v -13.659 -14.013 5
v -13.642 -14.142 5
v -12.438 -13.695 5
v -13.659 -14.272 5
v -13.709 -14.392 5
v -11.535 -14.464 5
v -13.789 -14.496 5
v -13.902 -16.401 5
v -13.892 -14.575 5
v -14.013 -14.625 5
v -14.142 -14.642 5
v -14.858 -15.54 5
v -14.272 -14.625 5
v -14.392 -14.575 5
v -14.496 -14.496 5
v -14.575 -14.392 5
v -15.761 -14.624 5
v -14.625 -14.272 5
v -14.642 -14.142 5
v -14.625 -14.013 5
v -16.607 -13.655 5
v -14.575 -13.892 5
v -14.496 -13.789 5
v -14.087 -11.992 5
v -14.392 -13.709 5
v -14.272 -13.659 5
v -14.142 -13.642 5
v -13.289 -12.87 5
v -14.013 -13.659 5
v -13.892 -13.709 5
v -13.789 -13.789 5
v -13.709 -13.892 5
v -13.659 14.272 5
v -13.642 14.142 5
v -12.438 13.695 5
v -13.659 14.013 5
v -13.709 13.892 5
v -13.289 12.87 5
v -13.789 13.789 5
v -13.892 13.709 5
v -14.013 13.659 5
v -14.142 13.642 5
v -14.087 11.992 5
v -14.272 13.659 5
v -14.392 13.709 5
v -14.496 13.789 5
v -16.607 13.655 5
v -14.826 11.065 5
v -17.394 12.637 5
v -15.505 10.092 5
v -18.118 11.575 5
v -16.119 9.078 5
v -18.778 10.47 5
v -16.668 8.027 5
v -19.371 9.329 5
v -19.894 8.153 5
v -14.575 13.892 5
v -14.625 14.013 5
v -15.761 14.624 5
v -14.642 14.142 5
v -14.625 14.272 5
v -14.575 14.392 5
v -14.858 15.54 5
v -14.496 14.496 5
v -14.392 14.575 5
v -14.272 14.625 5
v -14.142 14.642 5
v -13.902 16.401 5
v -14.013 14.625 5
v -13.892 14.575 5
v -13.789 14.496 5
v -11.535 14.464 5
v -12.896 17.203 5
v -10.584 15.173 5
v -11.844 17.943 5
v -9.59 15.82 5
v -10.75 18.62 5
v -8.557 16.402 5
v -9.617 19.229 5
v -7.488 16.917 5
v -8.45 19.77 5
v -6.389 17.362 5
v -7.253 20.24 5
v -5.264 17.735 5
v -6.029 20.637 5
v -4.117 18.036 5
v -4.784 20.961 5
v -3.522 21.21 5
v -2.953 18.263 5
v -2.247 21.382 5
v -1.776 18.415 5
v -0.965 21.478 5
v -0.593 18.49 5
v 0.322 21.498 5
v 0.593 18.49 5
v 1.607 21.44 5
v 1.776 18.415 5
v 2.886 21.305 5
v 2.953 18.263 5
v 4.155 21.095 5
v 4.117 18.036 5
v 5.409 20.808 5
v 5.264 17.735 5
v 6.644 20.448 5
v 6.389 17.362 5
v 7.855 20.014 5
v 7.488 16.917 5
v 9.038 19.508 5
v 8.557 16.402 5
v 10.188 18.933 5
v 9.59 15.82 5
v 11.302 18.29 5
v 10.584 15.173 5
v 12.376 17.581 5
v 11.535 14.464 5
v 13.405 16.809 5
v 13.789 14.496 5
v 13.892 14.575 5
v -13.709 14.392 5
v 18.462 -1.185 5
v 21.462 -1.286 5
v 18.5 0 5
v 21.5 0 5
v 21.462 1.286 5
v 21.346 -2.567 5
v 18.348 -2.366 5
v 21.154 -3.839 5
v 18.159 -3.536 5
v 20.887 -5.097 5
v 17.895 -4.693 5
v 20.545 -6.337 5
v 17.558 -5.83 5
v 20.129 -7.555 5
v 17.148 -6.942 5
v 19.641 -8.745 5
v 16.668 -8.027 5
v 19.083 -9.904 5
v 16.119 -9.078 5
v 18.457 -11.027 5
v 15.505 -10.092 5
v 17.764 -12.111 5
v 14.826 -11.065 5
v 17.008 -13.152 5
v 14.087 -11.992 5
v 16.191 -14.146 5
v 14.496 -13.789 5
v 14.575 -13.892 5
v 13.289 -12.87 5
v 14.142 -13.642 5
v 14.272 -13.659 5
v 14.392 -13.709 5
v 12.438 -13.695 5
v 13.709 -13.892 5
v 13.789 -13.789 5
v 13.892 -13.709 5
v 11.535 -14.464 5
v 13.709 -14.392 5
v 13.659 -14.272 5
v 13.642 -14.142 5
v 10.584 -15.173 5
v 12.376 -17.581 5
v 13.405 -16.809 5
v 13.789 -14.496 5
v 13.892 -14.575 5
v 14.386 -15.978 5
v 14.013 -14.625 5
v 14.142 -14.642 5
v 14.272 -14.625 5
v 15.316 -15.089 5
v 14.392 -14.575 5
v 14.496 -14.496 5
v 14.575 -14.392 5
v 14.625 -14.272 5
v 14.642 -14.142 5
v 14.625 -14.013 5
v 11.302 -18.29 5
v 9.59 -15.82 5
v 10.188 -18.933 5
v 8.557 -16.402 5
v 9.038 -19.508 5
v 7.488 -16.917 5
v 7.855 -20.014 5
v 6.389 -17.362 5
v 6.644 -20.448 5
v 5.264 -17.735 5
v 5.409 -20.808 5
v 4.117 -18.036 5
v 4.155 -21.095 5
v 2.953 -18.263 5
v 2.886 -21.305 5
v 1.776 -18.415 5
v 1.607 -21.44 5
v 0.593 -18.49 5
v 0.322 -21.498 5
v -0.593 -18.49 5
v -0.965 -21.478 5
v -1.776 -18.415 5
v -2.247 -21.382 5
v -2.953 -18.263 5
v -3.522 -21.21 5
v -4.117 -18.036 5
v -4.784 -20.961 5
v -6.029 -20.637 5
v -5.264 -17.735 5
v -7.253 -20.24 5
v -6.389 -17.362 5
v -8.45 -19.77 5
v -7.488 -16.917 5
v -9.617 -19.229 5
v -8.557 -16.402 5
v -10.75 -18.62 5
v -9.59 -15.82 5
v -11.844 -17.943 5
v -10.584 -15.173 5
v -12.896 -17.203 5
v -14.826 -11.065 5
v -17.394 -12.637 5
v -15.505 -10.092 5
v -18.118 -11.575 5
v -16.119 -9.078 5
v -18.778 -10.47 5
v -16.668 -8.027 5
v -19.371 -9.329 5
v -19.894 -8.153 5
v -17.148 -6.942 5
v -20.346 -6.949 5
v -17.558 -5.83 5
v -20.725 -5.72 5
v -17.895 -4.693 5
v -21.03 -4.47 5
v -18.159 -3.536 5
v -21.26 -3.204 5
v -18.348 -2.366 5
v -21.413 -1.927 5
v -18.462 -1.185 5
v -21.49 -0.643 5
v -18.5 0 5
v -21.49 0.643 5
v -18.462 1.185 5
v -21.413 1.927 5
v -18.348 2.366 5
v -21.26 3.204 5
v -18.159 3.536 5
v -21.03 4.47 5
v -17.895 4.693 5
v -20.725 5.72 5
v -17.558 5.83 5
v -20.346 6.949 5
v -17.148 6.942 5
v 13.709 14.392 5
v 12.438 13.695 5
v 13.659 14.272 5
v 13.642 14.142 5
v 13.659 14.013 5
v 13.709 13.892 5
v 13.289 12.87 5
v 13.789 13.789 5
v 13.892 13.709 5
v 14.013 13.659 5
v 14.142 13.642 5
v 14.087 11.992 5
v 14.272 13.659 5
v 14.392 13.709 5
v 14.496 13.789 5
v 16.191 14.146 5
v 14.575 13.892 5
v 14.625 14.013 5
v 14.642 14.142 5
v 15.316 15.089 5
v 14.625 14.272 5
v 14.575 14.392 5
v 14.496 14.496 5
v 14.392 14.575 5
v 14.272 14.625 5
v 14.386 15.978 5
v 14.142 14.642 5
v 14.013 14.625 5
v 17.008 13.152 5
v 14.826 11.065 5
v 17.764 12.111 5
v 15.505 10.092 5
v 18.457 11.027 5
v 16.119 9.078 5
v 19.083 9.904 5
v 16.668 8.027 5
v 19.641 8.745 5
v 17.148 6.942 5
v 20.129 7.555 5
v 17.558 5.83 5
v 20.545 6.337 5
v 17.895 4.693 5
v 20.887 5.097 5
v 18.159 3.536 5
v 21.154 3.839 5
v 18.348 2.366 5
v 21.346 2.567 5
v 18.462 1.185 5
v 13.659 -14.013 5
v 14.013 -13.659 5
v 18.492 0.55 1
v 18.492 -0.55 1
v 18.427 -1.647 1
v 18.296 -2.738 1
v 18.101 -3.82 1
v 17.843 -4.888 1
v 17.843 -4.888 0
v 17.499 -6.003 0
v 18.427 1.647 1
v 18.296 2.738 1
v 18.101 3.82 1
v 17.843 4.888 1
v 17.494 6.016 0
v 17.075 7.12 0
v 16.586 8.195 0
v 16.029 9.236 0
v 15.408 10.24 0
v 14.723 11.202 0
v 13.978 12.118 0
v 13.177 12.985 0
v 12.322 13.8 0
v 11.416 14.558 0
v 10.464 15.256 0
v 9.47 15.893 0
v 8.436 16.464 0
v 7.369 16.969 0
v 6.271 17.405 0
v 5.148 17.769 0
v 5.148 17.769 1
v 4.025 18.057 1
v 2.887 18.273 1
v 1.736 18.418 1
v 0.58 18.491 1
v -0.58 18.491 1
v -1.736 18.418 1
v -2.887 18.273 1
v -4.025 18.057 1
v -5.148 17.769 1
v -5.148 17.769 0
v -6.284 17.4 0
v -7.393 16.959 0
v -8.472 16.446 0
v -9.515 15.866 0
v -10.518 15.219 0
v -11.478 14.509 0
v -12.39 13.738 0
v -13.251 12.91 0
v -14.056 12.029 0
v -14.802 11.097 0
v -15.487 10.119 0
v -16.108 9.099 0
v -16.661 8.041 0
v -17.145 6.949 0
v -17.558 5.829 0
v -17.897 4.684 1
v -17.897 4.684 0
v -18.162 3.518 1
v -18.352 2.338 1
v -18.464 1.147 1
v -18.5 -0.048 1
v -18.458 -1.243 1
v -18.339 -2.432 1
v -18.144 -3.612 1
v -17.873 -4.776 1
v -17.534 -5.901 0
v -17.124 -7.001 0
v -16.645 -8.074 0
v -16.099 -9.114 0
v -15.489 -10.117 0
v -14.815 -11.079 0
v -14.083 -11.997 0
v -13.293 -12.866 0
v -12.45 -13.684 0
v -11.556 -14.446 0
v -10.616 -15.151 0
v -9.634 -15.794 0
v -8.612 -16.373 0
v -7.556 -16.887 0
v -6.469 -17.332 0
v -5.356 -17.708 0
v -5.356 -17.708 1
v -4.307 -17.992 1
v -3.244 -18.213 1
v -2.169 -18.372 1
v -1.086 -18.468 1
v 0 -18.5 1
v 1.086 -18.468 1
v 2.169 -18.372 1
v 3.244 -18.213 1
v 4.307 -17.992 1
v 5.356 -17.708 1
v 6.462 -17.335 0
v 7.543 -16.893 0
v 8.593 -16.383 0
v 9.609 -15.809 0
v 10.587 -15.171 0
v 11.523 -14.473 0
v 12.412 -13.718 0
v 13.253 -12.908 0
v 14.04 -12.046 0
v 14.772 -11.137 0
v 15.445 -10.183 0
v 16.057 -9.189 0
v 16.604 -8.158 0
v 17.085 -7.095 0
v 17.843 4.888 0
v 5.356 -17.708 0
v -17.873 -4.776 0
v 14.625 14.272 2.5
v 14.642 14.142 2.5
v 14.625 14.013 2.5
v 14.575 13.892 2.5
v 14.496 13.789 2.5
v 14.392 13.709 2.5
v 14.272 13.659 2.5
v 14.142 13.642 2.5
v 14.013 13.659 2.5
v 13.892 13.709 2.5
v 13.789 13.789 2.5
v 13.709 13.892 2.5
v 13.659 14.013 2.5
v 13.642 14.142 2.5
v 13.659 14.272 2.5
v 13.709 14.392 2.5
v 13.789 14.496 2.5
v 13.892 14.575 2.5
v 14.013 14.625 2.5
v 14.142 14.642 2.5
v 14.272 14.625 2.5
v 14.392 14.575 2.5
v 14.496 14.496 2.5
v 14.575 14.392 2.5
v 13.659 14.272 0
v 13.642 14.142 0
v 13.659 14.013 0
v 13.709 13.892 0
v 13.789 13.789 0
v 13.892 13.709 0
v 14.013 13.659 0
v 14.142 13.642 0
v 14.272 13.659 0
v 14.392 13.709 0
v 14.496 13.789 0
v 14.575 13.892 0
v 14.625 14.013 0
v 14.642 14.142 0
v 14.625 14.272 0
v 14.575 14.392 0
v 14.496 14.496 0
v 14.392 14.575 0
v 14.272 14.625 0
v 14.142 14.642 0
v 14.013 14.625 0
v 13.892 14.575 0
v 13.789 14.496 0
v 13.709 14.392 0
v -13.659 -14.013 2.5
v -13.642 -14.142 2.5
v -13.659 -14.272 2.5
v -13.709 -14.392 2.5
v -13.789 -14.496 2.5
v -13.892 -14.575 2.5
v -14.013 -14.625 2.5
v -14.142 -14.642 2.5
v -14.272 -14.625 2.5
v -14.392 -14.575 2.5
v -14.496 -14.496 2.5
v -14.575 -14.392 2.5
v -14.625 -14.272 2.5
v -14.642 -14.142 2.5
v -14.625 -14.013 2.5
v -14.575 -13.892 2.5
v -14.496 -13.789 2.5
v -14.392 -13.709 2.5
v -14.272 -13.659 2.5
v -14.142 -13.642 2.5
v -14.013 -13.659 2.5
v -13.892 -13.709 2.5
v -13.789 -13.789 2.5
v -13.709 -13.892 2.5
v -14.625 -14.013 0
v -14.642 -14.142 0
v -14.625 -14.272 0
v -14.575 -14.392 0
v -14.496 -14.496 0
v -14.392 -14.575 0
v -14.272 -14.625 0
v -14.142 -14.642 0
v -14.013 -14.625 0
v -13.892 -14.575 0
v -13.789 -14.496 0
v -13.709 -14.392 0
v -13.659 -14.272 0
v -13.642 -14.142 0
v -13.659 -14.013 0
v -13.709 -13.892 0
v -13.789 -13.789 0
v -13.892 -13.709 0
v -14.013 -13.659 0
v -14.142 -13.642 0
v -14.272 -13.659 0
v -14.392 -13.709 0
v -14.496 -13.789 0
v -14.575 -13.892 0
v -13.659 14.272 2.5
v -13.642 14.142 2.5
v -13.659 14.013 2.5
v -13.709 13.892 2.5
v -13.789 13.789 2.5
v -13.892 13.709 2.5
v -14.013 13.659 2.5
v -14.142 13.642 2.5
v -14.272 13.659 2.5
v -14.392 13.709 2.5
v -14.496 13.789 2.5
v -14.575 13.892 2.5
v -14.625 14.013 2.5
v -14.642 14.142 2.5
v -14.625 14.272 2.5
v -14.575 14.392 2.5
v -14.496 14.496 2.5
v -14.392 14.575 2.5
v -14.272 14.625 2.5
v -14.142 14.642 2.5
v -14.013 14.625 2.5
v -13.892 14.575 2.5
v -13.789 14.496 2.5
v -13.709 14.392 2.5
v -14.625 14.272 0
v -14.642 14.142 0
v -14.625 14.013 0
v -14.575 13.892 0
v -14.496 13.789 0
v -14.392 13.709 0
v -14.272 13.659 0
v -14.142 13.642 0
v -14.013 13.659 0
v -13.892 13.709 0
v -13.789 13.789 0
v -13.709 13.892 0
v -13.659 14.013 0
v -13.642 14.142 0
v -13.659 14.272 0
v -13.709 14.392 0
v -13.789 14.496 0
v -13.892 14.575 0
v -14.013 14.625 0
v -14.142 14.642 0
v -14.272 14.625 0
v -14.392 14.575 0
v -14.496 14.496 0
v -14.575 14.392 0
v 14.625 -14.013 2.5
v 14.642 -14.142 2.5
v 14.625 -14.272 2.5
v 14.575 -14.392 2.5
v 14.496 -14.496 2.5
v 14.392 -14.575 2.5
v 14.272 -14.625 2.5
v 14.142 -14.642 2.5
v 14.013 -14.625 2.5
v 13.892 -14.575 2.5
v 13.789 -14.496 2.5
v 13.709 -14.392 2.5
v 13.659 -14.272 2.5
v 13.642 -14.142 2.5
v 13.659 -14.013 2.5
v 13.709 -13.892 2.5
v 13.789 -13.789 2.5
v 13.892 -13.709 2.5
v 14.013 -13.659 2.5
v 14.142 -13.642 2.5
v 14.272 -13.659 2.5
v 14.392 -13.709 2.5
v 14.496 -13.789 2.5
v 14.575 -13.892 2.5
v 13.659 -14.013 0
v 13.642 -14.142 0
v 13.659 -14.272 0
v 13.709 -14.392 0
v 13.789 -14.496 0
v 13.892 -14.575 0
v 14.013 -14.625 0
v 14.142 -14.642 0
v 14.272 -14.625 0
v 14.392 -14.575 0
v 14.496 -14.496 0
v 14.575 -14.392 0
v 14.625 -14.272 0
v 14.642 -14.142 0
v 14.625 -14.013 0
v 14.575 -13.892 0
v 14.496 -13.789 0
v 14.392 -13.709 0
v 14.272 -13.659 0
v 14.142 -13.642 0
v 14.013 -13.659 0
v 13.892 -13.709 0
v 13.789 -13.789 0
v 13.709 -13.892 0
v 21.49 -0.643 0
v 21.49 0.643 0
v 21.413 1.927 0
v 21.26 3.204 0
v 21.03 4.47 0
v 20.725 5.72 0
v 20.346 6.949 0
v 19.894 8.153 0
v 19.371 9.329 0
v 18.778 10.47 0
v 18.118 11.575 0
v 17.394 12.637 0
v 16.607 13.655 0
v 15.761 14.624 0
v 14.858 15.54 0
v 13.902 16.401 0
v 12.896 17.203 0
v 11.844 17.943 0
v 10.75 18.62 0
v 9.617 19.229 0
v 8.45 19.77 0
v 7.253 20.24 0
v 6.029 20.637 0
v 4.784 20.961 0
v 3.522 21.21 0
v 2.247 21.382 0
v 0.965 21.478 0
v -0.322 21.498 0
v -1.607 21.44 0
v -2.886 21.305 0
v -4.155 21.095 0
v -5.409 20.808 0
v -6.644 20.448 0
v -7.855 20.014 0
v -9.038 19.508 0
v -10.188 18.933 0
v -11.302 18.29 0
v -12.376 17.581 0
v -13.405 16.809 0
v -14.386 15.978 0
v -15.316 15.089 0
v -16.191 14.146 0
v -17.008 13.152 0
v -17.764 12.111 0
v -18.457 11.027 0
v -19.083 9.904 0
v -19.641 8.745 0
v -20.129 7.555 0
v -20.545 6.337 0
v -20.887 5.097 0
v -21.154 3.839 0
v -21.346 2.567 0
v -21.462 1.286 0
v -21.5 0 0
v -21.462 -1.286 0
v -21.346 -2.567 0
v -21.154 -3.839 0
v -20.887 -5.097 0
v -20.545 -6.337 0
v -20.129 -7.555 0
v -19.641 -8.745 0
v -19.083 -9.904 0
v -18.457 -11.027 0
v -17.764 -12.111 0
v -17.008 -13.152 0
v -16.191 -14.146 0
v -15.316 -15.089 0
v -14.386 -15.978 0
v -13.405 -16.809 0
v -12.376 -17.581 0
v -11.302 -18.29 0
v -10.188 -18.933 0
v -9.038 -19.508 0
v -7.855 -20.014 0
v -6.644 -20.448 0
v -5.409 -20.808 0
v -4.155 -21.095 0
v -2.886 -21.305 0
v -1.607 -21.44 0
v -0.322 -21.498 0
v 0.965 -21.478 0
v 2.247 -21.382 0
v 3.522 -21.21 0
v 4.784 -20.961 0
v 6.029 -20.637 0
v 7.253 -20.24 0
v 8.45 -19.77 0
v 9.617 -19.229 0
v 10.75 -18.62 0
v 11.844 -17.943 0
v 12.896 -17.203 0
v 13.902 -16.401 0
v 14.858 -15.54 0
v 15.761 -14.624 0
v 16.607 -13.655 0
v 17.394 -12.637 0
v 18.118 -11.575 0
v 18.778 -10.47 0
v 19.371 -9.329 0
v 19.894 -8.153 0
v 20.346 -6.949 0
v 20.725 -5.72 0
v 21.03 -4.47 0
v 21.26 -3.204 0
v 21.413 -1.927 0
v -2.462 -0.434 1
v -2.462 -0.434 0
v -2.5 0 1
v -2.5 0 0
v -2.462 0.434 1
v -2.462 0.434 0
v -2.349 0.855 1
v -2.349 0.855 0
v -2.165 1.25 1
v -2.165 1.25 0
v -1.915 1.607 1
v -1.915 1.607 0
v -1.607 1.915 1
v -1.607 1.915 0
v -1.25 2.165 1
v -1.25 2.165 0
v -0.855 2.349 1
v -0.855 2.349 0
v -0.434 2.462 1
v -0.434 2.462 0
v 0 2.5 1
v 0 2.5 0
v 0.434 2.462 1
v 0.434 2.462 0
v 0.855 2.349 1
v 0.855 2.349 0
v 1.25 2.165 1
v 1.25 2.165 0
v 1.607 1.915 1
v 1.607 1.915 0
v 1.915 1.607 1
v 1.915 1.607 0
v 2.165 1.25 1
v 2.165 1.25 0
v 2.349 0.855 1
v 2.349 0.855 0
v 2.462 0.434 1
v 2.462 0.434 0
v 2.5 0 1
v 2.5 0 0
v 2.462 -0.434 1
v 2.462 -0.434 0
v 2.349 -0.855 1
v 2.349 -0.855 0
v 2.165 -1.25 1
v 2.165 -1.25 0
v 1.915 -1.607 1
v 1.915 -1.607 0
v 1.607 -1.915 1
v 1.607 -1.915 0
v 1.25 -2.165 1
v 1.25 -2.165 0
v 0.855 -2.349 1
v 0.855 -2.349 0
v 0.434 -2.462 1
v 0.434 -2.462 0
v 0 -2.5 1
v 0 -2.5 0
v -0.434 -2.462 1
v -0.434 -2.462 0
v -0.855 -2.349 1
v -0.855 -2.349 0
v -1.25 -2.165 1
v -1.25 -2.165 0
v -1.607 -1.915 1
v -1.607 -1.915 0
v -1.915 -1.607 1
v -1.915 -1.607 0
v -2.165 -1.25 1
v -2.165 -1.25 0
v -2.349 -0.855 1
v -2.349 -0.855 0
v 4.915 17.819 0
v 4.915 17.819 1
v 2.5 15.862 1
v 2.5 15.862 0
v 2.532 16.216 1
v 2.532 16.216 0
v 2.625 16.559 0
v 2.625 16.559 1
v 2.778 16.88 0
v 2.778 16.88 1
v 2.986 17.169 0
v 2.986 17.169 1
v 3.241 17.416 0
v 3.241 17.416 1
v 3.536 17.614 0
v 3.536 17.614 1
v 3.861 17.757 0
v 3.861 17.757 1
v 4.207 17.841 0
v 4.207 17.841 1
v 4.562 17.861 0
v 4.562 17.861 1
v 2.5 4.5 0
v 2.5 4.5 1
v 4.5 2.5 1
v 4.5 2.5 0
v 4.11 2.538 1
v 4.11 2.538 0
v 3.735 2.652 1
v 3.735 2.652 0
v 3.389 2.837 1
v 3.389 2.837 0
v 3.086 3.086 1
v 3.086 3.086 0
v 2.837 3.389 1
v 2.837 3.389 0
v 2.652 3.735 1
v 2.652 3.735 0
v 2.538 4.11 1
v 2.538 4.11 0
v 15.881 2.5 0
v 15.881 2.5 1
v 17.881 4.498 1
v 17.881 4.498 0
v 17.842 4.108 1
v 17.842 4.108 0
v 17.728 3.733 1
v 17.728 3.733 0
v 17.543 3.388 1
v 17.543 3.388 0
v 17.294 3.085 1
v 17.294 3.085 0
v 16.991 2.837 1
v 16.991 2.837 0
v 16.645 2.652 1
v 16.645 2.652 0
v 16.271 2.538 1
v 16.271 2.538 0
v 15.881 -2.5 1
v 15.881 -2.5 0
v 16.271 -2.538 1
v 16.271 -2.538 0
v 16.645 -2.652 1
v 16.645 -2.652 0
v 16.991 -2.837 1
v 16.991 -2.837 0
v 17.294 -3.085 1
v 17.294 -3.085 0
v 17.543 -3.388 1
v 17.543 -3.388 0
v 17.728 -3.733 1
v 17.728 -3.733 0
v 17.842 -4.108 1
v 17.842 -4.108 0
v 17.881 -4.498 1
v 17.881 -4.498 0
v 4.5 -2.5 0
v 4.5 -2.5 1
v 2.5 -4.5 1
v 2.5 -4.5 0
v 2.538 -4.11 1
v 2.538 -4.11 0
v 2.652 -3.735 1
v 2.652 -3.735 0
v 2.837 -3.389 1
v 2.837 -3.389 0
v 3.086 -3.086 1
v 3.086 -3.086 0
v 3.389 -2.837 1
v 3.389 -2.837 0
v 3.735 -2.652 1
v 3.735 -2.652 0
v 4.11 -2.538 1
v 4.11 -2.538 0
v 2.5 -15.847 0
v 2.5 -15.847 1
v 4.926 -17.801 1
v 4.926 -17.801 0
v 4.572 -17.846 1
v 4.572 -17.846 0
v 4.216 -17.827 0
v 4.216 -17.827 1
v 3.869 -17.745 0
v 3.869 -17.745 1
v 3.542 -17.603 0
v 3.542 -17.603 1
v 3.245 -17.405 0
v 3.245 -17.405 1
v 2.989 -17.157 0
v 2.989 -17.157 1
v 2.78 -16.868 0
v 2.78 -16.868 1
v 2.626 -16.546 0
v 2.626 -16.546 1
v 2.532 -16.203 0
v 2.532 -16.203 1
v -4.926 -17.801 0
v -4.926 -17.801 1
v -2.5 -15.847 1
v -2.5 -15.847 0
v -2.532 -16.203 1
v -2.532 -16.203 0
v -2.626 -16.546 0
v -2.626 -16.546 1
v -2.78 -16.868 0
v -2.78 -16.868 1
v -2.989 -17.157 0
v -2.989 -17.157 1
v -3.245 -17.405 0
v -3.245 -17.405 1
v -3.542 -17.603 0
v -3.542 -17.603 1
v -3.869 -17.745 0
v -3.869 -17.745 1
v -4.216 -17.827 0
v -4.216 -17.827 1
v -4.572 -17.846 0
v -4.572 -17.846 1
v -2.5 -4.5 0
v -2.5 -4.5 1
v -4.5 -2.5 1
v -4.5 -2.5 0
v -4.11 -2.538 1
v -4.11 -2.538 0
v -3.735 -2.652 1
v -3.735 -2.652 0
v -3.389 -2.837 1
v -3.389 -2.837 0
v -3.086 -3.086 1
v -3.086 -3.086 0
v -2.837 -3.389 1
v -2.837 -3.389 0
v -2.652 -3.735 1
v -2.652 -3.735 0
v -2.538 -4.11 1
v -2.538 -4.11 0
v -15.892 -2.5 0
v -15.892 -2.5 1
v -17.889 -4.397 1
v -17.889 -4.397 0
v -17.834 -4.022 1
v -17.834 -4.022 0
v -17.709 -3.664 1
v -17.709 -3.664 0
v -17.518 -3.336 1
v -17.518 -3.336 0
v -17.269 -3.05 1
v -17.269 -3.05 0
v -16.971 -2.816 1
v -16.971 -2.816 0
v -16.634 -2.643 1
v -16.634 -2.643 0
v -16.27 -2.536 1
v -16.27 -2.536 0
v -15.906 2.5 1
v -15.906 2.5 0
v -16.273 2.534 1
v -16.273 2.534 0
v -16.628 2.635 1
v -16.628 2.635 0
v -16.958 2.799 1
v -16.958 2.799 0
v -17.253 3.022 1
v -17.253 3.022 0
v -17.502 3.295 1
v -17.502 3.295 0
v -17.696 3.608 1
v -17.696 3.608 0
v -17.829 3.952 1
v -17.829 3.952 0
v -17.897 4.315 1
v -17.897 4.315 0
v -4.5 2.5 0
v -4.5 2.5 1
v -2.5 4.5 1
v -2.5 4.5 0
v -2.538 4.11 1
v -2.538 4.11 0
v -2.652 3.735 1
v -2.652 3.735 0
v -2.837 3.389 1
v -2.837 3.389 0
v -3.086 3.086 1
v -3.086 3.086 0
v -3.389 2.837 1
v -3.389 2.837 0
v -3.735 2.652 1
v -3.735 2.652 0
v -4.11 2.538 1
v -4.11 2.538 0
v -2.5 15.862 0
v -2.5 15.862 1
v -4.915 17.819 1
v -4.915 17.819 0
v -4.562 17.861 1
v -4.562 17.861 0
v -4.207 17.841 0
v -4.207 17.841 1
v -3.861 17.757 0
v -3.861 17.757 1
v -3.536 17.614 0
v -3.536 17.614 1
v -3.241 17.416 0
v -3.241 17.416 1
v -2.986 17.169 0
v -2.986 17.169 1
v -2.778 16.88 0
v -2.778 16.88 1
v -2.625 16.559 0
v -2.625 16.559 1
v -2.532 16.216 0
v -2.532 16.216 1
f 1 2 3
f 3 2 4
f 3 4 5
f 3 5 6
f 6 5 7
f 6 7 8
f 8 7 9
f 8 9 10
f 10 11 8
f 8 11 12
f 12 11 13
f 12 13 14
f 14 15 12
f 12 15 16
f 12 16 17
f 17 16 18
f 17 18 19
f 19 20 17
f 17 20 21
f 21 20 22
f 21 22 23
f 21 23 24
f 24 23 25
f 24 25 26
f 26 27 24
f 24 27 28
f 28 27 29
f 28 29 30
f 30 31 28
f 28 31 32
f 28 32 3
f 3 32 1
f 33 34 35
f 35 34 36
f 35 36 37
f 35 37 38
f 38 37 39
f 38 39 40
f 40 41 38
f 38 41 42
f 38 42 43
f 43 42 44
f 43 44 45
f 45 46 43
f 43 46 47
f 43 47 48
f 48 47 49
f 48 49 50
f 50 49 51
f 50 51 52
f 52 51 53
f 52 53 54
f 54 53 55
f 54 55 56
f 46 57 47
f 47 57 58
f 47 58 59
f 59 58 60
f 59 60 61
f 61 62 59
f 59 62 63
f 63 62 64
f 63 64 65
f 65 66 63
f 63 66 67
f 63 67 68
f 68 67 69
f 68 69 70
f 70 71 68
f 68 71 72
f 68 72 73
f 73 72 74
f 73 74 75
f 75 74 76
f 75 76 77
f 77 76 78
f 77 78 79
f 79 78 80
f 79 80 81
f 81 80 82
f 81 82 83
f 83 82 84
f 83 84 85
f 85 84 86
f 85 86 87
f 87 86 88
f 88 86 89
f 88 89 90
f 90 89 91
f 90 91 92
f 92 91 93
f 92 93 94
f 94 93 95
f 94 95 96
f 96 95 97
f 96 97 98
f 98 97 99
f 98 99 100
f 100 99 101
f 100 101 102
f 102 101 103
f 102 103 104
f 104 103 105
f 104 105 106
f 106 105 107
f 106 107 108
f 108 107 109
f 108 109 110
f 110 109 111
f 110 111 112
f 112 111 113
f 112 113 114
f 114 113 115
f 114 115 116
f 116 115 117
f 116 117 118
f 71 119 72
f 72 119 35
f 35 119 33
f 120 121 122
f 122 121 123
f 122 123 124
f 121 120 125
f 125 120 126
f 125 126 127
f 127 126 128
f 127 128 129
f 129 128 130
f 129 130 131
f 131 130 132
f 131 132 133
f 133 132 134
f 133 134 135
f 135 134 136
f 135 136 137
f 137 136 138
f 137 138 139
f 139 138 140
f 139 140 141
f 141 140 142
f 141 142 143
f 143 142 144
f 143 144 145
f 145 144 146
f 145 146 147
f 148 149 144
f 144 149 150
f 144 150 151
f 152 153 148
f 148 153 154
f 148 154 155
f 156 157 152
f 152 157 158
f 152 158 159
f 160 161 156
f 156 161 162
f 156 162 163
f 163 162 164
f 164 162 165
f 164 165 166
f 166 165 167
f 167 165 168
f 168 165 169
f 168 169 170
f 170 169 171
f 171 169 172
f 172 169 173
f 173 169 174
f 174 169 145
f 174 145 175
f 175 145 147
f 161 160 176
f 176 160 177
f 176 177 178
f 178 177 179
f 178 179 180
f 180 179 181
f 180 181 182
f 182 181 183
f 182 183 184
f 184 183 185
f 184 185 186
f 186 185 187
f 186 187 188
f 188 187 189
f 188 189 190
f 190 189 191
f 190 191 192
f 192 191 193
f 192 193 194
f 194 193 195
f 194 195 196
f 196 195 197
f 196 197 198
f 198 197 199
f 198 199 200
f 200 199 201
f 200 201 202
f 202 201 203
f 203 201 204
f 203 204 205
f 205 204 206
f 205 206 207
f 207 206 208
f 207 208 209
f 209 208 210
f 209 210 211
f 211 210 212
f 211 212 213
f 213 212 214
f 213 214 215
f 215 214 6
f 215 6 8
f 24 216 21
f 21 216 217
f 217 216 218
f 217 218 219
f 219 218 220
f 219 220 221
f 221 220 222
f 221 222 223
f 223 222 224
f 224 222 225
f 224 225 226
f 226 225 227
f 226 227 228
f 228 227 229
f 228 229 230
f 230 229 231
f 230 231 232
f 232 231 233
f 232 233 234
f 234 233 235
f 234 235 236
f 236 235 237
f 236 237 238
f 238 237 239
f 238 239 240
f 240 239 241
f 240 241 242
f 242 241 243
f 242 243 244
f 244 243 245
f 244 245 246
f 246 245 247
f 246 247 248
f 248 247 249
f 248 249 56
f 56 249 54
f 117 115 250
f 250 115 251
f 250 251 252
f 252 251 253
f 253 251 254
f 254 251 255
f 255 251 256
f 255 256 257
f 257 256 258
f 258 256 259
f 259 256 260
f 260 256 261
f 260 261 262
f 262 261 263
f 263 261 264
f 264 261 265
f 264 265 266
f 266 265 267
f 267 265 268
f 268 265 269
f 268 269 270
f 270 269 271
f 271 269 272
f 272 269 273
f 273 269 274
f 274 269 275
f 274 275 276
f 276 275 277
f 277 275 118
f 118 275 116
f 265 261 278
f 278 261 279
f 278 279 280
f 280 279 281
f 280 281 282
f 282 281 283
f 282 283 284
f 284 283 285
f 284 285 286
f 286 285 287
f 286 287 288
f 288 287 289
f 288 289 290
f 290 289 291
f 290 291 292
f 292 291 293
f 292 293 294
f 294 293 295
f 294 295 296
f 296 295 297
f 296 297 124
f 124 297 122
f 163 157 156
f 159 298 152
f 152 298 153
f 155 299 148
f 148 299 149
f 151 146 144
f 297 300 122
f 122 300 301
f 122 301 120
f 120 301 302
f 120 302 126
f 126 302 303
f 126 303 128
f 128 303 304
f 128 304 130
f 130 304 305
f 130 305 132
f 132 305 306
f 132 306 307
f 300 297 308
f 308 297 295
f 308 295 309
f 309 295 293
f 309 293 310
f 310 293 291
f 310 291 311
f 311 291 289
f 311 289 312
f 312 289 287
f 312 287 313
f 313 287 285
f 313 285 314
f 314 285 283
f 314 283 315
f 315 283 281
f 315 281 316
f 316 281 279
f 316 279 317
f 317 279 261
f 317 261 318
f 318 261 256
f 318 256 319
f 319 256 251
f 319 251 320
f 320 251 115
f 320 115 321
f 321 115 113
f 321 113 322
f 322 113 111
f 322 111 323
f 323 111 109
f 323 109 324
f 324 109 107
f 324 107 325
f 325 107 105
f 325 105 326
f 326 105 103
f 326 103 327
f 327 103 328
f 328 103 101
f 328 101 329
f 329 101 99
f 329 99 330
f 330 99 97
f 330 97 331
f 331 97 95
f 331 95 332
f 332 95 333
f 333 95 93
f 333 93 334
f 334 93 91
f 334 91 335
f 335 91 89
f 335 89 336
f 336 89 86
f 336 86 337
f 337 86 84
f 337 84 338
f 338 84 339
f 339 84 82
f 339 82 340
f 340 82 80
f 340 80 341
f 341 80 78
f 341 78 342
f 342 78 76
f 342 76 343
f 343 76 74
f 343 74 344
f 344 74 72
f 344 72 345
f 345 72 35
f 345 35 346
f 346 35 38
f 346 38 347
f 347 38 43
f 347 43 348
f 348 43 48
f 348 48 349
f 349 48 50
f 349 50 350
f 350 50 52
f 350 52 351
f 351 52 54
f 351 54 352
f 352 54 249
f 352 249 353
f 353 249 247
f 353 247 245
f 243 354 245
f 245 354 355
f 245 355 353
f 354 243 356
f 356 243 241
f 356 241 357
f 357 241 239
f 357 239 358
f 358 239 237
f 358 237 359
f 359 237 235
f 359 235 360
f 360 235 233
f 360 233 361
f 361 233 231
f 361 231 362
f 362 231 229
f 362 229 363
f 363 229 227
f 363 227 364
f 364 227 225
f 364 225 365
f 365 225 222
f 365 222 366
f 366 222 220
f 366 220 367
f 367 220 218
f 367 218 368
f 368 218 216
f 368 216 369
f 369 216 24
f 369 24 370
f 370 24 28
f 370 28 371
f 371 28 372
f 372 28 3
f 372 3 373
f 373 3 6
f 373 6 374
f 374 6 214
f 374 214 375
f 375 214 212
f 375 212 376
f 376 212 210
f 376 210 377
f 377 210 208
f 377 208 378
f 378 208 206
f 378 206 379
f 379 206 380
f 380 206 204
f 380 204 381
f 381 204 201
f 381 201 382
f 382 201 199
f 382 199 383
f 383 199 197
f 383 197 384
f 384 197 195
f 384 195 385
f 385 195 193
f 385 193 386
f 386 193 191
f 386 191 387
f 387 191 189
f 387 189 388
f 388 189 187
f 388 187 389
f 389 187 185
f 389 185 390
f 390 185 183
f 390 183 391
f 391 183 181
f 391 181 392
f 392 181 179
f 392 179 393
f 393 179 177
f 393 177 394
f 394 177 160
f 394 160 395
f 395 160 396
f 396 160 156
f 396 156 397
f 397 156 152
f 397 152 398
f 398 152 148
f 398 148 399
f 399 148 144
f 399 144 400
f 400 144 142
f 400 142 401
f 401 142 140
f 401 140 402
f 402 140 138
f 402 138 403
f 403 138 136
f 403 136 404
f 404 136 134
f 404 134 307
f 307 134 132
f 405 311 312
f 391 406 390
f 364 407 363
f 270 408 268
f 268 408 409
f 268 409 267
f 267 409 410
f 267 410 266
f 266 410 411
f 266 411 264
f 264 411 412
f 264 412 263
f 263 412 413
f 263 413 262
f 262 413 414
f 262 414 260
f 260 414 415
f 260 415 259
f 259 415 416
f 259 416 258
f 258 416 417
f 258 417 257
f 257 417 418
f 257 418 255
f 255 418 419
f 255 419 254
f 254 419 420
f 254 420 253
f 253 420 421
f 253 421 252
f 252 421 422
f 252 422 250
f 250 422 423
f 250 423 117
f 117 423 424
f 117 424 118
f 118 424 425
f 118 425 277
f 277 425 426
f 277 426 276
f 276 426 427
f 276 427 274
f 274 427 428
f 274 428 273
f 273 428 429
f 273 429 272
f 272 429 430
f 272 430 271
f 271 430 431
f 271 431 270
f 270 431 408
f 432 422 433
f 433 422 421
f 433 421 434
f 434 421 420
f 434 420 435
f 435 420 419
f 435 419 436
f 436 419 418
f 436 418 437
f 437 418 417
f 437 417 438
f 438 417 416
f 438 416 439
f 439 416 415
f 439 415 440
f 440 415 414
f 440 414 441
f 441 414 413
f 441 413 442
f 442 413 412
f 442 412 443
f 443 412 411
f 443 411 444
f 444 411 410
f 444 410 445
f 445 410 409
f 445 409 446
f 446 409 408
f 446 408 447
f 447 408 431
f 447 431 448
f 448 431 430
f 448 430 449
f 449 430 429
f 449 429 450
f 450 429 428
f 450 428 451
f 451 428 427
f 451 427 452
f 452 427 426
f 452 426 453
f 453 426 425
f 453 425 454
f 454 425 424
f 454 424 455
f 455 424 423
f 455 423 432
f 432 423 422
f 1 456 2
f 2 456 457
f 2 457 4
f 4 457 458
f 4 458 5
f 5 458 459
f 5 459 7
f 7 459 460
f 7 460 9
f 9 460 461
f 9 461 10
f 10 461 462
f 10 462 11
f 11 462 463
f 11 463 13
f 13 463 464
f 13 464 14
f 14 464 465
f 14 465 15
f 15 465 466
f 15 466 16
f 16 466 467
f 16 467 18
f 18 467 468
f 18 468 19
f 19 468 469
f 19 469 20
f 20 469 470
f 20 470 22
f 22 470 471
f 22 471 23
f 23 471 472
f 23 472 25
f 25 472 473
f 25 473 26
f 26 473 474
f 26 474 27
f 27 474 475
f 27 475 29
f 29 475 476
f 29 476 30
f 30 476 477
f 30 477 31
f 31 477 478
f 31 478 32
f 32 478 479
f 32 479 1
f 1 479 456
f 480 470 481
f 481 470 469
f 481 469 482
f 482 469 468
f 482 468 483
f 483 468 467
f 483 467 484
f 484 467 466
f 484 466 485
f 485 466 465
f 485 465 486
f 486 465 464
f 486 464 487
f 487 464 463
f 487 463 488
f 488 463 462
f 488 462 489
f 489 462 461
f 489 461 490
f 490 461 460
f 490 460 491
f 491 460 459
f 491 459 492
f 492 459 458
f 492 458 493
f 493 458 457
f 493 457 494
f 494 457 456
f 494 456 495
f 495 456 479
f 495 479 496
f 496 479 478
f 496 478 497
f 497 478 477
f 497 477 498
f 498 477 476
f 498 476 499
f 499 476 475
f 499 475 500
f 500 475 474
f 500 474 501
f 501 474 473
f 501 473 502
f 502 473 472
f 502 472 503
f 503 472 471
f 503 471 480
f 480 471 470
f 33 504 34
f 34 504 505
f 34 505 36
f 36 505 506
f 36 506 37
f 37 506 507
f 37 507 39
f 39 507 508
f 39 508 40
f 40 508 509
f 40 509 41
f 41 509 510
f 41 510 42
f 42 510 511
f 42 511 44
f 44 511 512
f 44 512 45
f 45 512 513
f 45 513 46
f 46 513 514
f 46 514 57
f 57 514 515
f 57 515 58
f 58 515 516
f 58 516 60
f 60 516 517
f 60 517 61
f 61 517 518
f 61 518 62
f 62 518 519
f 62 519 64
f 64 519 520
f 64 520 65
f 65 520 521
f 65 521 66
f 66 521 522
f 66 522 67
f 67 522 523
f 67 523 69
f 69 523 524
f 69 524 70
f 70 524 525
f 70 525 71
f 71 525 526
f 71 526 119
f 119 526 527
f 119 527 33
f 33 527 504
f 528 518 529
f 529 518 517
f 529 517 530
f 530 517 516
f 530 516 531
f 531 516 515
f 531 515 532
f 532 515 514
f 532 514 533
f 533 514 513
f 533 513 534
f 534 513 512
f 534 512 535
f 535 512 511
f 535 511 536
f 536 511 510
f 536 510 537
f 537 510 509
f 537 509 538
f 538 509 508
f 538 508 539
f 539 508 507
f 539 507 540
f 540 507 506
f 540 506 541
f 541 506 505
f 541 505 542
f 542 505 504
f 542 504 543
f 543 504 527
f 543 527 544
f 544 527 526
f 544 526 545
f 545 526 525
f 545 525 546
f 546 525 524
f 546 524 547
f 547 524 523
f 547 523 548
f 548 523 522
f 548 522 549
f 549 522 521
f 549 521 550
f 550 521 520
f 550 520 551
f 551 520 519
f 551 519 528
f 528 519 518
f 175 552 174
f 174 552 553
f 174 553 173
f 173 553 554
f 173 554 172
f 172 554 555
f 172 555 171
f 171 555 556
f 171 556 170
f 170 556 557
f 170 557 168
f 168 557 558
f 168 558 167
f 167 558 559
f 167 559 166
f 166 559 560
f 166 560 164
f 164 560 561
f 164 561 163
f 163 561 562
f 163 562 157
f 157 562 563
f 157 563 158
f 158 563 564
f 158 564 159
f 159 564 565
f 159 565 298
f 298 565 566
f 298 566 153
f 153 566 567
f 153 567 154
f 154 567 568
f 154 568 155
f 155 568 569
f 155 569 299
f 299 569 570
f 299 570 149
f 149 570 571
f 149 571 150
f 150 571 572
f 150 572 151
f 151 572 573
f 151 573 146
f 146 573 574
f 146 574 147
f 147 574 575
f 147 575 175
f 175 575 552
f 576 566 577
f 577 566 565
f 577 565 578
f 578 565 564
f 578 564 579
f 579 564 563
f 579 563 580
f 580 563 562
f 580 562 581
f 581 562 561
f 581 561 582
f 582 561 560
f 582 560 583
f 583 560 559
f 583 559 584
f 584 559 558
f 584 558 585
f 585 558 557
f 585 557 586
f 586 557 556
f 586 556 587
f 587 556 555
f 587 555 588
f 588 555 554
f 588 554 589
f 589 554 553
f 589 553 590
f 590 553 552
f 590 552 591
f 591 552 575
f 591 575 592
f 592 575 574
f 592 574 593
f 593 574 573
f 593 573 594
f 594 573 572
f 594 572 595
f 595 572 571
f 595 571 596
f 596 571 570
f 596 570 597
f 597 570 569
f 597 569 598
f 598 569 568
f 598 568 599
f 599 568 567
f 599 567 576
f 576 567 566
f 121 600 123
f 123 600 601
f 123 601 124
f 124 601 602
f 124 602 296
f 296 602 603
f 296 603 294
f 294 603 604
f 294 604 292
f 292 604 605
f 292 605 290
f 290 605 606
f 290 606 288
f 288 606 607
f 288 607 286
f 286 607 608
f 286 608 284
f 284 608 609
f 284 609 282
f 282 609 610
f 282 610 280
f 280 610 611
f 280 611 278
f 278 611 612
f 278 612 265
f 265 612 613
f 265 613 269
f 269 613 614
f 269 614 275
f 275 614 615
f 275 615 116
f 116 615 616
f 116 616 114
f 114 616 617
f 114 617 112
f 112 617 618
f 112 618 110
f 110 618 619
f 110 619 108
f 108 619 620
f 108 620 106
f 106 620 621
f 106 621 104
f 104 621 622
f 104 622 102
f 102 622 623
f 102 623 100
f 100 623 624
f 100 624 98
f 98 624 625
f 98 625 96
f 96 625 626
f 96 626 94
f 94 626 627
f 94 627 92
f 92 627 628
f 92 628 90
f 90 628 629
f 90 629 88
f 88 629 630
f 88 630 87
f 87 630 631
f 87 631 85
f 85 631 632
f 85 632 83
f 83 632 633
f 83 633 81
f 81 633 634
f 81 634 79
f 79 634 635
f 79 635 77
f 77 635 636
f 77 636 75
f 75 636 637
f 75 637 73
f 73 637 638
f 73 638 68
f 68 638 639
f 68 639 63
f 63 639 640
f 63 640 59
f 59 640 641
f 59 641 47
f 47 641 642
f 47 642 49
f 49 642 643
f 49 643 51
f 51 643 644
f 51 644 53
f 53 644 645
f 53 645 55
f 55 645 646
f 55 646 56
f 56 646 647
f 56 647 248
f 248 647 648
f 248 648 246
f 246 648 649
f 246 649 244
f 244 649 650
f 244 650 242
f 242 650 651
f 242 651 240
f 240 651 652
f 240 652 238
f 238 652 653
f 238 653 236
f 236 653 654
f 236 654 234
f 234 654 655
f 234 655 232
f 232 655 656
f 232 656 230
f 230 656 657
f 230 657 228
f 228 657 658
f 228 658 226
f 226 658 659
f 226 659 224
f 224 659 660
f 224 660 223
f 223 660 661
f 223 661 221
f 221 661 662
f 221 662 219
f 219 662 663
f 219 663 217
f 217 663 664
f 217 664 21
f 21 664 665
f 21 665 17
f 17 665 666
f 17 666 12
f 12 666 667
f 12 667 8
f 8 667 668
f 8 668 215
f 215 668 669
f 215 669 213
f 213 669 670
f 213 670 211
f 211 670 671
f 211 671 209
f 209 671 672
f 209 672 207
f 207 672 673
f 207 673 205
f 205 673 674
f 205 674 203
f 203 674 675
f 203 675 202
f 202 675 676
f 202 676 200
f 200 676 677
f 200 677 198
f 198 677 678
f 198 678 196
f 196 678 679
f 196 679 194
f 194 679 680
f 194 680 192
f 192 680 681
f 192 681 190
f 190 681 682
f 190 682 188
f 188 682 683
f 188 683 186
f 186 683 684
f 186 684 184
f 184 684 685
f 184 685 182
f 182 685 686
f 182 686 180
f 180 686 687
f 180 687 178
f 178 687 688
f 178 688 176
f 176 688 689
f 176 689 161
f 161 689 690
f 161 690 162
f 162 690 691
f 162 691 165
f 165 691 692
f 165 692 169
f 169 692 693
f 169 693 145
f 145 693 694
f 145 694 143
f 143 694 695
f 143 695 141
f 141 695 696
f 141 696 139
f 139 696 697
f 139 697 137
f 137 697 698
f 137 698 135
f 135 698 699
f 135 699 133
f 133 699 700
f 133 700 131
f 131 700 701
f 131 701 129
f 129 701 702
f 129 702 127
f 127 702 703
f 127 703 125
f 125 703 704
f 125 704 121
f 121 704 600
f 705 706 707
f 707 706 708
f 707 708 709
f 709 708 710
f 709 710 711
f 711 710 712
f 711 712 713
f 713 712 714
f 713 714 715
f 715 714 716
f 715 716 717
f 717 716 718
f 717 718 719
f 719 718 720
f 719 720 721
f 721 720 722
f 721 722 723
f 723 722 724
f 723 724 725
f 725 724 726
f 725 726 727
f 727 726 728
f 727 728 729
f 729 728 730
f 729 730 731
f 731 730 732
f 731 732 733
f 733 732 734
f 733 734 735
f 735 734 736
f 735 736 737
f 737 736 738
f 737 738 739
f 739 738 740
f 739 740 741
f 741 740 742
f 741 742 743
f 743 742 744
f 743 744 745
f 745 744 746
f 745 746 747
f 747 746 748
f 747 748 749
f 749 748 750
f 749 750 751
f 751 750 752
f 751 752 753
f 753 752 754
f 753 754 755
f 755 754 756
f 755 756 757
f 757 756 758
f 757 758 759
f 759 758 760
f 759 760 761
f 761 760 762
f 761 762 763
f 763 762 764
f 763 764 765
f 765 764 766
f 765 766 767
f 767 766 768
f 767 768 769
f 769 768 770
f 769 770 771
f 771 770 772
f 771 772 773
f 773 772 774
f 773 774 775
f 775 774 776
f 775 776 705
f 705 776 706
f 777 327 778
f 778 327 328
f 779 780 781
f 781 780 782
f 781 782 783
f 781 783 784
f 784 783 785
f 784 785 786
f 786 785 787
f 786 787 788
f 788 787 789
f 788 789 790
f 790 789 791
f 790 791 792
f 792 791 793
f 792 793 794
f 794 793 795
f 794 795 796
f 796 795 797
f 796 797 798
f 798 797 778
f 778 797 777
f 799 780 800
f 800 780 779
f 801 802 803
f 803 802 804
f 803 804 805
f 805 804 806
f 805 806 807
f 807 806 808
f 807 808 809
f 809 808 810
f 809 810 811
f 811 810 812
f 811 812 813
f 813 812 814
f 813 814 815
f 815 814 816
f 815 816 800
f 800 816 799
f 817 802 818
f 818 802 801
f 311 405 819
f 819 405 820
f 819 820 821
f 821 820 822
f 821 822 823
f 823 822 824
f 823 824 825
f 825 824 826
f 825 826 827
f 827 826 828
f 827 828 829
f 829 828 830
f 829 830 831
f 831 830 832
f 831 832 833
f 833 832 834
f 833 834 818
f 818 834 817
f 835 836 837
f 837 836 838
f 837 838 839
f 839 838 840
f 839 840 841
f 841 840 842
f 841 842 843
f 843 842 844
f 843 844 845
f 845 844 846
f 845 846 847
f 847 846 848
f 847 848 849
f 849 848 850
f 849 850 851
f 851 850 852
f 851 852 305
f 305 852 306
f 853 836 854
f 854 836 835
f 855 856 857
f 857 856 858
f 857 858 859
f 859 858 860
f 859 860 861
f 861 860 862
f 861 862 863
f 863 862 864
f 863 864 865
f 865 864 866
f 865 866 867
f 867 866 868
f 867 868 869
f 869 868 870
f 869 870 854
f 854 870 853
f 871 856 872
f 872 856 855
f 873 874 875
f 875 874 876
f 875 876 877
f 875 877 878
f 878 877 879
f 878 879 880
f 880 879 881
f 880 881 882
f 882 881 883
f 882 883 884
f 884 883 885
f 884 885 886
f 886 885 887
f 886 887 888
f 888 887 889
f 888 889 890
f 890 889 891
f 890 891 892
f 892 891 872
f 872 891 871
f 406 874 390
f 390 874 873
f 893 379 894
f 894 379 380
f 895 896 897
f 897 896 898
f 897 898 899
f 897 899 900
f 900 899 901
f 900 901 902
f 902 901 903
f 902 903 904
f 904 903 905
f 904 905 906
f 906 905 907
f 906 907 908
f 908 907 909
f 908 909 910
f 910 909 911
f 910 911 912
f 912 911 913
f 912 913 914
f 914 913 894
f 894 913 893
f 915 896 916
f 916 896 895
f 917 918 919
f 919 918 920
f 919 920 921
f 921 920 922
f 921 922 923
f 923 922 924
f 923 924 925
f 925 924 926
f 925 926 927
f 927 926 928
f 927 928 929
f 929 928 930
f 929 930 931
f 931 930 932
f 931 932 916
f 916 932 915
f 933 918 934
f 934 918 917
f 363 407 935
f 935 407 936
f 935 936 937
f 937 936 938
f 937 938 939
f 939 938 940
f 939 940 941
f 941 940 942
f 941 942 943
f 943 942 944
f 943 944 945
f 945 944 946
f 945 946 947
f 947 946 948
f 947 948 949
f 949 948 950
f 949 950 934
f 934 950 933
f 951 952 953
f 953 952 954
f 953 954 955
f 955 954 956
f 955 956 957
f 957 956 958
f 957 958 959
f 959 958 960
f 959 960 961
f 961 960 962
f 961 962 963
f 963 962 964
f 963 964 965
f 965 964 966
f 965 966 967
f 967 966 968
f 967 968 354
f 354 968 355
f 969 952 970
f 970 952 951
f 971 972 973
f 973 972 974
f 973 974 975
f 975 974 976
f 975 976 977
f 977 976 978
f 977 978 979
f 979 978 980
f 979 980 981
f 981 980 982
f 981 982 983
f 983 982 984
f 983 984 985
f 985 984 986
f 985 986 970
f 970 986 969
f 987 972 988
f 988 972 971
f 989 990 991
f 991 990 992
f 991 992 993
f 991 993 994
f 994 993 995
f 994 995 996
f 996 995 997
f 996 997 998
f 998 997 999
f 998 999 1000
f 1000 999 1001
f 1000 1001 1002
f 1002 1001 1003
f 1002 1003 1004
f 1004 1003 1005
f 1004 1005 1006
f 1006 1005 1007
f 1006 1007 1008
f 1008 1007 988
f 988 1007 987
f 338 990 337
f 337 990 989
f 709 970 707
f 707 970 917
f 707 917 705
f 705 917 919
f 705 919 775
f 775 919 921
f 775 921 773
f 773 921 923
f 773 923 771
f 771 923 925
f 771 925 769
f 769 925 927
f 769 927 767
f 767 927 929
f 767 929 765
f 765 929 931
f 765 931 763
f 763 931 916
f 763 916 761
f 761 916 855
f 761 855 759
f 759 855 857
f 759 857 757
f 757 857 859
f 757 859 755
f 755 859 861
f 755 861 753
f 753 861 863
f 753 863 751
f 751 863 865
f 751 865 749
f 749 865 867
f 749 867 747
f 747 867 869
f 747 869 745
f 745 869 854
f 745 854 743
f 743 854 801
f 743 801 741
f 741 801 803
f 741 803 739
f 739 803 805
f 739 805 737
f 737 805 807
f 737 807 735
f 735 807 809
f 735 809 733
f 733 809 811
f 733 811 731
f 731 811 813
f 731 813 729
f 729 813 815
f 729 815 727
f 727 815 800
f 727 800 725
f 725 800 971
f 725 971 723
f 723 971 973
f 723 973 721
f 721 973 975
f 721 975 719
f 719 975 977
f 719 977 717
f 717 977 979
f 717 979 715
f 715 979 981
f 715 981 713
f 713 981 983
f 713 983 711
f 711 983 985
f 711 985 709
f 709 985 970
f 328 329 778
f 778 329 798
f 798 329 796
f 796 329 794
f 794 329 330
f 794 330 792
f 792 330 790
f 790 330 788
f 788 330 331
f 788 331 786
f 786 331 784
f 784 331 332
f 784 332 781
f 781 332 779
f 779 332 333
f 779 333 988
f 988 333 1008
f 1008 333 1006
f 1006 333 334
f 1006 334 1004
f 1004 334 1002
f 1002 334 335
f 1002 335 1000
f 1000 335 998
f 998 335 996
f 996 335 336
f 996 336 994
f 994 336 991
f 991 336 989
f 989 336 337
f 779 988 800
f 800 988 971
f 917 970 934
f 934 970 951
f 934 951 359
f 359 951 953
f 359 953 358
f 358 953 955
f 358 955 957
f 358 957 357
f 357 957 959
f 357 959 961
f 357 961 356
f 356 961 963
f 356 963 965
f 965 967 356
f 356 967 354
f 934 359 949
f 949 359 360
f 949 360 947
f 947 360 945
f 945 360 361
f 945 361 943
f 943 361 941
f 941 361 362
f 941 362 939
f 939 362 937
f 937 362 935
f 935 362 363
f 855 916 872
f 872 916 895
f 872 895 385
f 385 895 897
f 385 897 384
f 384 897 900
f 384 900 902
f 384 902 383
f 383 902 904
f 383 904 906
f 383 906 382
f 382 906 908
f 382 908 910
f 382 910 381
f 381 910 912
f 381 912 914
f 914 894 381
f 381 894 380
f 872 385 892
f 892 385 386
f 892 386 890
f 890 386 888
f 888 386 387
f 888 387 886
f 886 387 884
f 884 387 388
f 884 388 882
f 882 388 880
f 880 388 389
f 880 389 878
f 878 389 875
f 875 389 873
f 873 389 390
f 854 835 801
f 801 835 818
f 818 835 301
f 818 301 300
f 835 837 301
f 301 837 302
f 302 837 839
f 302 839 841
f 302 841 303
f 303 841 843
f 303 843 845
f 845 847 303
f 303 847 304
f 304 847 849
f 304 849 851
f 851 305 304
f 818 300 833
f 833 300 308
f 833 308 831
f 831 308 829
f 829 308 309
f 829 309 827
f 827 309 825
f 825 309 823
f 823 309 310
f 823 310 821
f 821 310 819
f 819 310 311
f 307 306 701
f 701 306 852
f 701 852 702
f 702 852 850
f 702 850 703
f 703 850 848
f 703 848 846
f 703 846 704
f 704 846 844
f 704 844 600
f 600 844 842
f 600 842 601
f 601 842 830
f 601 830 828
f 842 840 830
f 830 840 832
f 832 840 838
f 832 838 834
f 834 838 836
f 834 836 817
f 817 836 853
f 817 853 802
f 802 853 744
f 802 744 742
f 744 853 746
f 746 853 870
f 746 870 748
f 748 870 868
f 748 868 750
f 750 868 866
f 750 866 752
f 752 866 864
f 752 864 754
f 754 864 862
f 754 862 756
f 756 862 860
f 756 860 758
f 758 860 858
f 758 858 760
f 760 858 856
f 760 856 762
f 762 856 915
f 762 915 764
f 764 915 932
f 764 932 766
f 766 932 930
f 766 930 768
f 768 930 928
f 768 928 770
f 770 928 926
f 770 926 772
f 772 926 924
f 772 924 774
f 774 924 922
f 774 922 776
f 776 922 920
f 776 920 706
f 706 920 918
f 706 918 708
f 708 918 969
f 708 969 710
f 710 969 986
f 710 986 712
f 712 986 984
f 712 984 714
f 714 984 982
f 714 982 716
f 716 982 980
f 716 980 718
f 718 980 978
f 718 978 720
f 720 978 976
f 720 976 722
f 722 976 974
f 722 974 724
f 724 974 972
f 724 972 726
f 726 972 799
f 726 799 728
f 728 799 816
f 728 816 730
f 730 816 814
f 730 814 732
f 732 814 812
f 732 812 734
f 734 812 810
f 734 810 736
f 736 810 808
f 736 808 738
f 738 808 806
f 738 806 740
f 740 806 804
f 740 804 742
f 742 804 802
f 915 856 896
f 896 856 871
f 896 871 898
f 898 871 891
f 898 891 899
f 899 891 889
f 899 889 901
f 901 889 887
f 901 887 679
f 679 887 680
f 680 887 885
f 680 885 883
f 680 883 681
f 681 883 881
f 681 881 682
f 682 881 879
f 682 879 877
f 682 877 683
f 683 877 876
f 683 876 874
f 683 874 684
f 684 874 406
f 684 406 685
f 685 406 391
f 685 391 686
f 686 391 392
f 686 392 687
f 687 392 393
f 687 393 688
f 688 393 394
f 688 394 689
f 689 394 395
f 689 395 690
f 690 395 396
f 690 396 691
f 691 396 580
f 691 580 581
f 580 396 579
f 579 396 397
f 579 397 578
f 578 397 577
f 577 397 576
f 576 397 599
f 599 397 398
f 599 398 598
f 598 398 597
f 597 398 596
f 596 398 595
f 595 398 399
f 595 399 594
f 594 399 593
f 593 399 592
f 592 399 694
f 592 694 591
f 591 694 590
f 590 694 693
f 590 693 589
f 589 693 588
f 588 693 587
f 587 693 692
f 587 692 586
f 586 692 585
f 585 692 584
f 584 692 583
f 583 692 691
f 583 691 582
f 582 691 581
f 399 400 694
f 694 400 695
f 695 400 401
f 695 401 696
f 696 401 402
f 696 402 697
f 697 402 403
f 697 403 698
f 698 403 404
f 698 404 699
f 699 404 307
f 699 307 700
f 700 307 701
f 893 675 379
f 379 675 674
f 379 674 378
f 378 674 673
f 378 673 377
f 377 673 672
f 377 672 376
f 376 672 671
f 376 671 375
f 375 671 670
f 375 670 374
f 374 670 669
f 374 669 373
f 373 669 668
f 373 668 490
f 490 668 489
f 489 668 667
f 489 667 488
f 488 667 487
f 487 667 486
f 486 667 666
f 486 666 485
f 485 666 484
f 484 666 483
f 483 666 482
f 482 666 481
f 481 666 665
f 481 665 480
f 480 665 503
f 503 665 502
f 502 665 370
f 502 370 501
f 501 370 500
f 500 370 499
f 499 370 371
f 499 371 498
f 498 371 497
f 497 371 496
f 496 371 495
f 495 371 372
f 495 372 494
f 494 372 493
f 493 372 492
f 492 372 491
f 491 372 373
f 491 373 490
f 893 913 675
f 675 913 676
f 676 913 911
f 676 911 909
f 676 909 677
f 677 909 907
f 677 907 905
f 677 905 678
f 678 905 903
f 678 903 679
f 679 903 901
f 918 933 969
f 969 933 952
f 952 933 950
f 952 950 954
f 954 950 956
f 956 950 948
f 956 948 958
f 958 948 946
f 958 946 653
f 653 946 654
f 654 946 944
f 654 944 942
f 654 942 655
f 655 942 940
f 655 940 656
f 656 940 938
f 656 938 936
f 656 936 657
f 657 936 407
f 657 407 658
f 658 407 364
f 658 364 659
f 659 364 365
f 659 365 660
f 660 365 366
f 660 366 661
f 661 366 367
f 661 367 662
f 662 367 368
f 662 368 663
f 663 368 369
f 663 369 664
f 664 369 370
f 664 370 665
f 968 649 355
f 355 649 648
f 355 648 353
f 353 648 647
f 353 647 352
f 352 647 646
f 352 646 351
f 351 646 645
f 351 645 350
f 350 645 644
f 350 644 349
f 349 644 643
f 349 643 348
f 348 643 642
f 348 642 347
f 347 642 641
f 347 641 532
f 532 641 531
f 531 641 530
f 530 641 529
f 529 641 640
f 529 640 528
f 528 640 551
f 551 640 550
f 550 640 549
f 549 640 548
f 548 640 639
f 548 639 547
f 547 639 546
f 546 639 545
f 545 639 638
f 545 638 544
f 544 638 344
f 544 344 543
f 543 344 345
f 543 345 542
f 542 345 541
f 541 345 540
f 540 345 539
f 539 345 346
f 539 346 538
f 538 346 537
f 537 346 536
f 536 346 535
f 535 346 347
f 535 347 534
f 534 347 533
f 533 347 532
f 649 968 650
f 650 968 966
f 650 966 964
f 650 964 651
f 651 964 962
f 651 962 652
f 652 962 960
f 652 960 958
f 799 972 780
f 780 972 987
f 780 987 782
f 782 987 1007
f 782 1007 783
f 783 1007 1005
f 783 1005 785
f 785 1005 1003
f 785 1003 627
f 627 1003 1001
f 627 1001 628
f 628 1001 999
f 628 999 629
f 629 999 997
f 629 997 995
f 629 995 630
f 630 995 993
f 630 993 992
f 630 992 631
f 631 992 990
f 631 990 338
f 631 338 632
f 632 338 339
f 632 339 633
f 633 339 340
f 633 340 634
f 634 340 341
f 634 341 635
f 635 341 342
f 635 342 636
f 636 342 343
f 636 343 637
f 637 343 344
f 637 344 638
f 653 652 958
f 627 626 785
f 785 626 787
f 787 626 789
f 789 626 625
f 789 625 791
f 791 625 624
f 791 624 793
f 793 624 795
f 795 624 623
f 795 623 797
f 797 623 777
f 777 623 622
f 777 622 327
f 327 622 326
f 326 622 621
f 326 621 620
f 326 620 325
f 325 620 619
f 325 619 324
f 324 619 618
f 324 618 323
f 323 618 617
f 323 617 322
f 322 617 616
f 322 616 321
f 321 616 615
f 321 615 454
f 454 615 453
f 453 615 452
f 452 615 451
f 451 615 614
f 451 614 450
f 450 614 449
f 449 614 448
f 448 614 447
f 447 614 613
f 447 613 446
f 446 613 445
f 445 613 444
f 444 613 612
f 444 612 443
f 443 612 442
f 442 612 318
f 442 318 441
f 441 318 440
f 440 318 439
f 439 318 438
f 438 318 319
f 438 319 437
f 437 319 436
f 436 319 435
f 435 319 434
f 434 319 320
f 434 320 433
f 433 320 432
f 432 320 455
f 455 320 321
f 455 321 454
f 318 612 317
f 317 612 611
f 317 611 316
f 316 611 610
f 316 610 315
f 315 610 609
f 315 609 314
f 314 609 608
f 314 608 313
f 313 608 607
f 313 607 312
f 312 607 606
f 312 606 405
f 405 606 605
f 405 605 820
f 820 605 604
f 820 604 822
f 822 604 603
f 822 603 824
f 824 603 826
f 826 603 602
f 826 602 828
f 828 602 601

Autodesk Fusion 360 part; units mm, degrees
sketch "Sketch1" plane through (0, 0, 0) normal (0, 0, 1) x (1, 0, 0)
  circle A0 centre (0, 0) radius 21.5
  circle A1 centre (0, 0) radius 18.5
  circle A2 centre (0, 0) radius 2.5
  line L0 (-2.5, 4.5) -> (-2.5, 15.8622)
  line L1 (2.5, 15.8622) -> (2.5, 4.5)
  line L2 (4.5, -2.5) -> (15.8806, -2.5)
  line L3 (15.8806, 2.5) -> (4.5, 2.5)
  line L4 (-2.5, -4.5) -> (-2.5, -15.8473)
  line L5 (2.5, -15.8473) -> (2.5, -4.5)
  line L6 (-4.5, -2.5) -> (-15.892, -2.5)
  line L7 (-15.9057, 2.5) -> (-4.5, 2.5)
  arc A3 (2.5, 4.5) -> (4.5, 2.5) centre (4.5, 4.5) ccw
  arc A4 (4.5, -2.5) -> (2.5, -4.5) centre (4.5, -4.5) ccw
  arc A5 (-2.5, -4.5) -> (-4.5, -2.5) centre (-4.5, -4.5) ccw
  arc A6 (-4.5, 2.5) -> (-2.5, 4.5) centre (-4.5, 4.5) ccw
  line L8 (-17.8692, 4.8804) -> (-17.9378, 4.526)
  line L9 (-17.8533, -4.8912) -> (-17.8867, -4.7239)
  arc A7 (-17.8692, 4.8804) -> (-15.9057, 2.5) centre (-15.9057, 4.5) ccw
  arc A8 (-15.892, -2.5) -> (-17.8533, -4.8912) centre (-15.892, -4.5) ccw
  line L10 (-4.926, -17.8014) -> (-5.3564, -17.7076)
  line L11 (4.926, -17.8014) -> (5.3564, -17.7076)
  arc A9 (-4.926, -17.8014) -> (-2.5, -15.8473) centre (-4.5, -15.8473) ccw
  arc A10 (2.5, -15.8473) -> (4.926, -17.8014) centre (4.5, -15.8473) ccw
  line L12 (17.8401, -4.9002) -> (17.8428, -4.8872)
  line L13 (17.8401, 4.9002) -> (17.8428, 4.8872)
  arc A11 (15.8806, 2.5) -> (17.8401, 4.9002) centre (15.8806, 4.5) ccw
  arc A12 (17.8401, -4.9002) -> (15.8806, -2.5) centre (15.8806, -4.5) ccw
  line L14 (4.9145, 17.8188) -> (5.1482, 17.7693)
  line L15 (-4.9145, 17.8188) -> (-5.1482, 17.7693)
  arc A13 (-2.5, 15.8622) -> (-4.9145, 17.8188) centre (-4.5, 15.8622) ccw
  arc A14 (4.9145, 17.8188) -> (2.5, 15.8622) centre (4.5, 15.8622) ccw
  dimension "d1" = 43
  dimension "d2" = 37
  dimension "d3" = 5
  dimension "d6" = 2
  dimension "d7" = 2
  dimension "d8" = 2
  dimension "d9" = 2
  dimension "d10" = 2
  dimension "d11" = 2
  dimension "d12" = 2
  dimension "d13" = 2
  dimension "d14" = 2
  dimension "d15" = 2
  dimension "d16" = 2
  dimension "d17" = 2
extrude "Extrude1" add sketch "Sketch1" along normal blind 1 contours A1 L0 L1 L2 L3 L4 L5 L6 L7 A3 A4 A5 A6 A7 A8 L10 L11 A9 A10 A11 A12 L14 L15 A13 A14
sketch "Sketch2" plane through (0, 0, 0) normal (0, 0, 1) x (1, 0, 0)
  circle A0 centre (0, 0) radius 21.5
  circle A1 centre (0, 0) radius 18.5
  line L0 (0, 0) -> (20, 0) construction
  circle A2 centre (-14.1421, 14.1421) radius 0.5
  circle A3 centre (14.1421, 14.1421) radius 0.5
  circle A4 centre (14.1421, -14.1421) radius 0.5
  circle A5 centre (-14.1421, -14.1421) radius 0.5
  dimension "d20" = 43
  dimension "d21" = 37
  dimension "d24" = 1
  dimension "d25" = 1
  dimension "d26" = 1
  dimension "d27" = 1
extrude "Extrude2" add sketch "Sketch2" along normal blind 4
sketch "Sketch3" plane through (0, 0, 4) normal (0, 0, 1) x (-1, 0, 0)
  circle A0 centre (-14.1421, 14.1421) radius 0.5
  circle A1 centre (14.1421, -14.1421) radius 0.5
  circle A2 centre (14.1421, 14.1421) radius 0.5
  circle A3 centre (-14.1421, -14.1421) radius 0.5
  circle A4 centre (0, 0) radius 18.5
  circle A5 centre (0, 0) radius 21.5
sketch "Sketch4" plane through (0, 0, 4) normal (0, 0, 1) x (-1, 0, 0)
  circle A0 centre (0, 0) radius 21.5
  circle A1 centre (0, 0) radius 18.5166
  dimension "d30" = 43
extrude "Extrude3" add sketch "Sketch3" along normal blind 1
